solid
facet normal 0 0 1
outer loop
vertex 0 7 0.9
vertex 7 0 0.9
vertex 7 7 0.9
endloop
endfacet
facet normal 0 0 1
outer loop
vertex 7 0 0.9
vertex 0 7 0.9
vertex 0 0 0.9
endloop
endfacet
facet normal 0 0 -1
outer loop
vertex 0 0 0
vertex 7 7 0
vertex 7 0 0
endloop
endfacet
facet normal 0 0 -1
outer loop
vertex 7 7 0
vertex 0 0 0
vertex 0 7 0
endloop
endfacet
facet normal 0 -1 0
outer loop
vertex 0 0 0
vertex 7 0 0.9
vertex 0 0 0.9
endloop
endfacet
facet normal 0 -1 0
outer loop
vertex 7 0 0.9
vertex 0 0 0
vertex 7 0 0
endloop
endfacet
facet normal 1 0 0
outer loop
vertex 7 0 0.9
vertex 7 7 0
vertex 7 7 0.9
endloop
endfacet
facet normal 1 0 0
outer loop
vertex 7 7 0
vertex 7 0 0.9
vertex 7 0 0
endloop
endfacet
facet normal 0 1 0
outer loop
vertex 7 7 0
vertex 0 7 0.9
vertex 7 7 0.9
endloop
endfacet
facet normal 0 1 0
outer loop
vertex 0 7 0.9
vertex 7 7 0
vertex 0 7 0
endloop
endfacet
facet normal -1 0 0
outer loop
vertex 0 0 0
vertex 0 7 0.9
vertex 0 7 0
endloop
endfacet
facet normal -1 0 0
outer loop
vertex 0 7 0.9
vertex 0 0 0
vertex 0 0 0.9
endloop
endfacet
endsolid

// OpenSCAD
/* Warning, this is a very basic generator with a lot of approximation 
input data : [VQFN, SMB, 7x7x0.9mm, 48, , B, C04-21414B]
generated by com.zoubworld.electronics.cad.model3d.Basic
Date : Sun Feb 15 10:50:49 CET 2026
*/

//body
color("black")
translate([0,0,0])
cube([7.0,7.0,0.9], center=false);
